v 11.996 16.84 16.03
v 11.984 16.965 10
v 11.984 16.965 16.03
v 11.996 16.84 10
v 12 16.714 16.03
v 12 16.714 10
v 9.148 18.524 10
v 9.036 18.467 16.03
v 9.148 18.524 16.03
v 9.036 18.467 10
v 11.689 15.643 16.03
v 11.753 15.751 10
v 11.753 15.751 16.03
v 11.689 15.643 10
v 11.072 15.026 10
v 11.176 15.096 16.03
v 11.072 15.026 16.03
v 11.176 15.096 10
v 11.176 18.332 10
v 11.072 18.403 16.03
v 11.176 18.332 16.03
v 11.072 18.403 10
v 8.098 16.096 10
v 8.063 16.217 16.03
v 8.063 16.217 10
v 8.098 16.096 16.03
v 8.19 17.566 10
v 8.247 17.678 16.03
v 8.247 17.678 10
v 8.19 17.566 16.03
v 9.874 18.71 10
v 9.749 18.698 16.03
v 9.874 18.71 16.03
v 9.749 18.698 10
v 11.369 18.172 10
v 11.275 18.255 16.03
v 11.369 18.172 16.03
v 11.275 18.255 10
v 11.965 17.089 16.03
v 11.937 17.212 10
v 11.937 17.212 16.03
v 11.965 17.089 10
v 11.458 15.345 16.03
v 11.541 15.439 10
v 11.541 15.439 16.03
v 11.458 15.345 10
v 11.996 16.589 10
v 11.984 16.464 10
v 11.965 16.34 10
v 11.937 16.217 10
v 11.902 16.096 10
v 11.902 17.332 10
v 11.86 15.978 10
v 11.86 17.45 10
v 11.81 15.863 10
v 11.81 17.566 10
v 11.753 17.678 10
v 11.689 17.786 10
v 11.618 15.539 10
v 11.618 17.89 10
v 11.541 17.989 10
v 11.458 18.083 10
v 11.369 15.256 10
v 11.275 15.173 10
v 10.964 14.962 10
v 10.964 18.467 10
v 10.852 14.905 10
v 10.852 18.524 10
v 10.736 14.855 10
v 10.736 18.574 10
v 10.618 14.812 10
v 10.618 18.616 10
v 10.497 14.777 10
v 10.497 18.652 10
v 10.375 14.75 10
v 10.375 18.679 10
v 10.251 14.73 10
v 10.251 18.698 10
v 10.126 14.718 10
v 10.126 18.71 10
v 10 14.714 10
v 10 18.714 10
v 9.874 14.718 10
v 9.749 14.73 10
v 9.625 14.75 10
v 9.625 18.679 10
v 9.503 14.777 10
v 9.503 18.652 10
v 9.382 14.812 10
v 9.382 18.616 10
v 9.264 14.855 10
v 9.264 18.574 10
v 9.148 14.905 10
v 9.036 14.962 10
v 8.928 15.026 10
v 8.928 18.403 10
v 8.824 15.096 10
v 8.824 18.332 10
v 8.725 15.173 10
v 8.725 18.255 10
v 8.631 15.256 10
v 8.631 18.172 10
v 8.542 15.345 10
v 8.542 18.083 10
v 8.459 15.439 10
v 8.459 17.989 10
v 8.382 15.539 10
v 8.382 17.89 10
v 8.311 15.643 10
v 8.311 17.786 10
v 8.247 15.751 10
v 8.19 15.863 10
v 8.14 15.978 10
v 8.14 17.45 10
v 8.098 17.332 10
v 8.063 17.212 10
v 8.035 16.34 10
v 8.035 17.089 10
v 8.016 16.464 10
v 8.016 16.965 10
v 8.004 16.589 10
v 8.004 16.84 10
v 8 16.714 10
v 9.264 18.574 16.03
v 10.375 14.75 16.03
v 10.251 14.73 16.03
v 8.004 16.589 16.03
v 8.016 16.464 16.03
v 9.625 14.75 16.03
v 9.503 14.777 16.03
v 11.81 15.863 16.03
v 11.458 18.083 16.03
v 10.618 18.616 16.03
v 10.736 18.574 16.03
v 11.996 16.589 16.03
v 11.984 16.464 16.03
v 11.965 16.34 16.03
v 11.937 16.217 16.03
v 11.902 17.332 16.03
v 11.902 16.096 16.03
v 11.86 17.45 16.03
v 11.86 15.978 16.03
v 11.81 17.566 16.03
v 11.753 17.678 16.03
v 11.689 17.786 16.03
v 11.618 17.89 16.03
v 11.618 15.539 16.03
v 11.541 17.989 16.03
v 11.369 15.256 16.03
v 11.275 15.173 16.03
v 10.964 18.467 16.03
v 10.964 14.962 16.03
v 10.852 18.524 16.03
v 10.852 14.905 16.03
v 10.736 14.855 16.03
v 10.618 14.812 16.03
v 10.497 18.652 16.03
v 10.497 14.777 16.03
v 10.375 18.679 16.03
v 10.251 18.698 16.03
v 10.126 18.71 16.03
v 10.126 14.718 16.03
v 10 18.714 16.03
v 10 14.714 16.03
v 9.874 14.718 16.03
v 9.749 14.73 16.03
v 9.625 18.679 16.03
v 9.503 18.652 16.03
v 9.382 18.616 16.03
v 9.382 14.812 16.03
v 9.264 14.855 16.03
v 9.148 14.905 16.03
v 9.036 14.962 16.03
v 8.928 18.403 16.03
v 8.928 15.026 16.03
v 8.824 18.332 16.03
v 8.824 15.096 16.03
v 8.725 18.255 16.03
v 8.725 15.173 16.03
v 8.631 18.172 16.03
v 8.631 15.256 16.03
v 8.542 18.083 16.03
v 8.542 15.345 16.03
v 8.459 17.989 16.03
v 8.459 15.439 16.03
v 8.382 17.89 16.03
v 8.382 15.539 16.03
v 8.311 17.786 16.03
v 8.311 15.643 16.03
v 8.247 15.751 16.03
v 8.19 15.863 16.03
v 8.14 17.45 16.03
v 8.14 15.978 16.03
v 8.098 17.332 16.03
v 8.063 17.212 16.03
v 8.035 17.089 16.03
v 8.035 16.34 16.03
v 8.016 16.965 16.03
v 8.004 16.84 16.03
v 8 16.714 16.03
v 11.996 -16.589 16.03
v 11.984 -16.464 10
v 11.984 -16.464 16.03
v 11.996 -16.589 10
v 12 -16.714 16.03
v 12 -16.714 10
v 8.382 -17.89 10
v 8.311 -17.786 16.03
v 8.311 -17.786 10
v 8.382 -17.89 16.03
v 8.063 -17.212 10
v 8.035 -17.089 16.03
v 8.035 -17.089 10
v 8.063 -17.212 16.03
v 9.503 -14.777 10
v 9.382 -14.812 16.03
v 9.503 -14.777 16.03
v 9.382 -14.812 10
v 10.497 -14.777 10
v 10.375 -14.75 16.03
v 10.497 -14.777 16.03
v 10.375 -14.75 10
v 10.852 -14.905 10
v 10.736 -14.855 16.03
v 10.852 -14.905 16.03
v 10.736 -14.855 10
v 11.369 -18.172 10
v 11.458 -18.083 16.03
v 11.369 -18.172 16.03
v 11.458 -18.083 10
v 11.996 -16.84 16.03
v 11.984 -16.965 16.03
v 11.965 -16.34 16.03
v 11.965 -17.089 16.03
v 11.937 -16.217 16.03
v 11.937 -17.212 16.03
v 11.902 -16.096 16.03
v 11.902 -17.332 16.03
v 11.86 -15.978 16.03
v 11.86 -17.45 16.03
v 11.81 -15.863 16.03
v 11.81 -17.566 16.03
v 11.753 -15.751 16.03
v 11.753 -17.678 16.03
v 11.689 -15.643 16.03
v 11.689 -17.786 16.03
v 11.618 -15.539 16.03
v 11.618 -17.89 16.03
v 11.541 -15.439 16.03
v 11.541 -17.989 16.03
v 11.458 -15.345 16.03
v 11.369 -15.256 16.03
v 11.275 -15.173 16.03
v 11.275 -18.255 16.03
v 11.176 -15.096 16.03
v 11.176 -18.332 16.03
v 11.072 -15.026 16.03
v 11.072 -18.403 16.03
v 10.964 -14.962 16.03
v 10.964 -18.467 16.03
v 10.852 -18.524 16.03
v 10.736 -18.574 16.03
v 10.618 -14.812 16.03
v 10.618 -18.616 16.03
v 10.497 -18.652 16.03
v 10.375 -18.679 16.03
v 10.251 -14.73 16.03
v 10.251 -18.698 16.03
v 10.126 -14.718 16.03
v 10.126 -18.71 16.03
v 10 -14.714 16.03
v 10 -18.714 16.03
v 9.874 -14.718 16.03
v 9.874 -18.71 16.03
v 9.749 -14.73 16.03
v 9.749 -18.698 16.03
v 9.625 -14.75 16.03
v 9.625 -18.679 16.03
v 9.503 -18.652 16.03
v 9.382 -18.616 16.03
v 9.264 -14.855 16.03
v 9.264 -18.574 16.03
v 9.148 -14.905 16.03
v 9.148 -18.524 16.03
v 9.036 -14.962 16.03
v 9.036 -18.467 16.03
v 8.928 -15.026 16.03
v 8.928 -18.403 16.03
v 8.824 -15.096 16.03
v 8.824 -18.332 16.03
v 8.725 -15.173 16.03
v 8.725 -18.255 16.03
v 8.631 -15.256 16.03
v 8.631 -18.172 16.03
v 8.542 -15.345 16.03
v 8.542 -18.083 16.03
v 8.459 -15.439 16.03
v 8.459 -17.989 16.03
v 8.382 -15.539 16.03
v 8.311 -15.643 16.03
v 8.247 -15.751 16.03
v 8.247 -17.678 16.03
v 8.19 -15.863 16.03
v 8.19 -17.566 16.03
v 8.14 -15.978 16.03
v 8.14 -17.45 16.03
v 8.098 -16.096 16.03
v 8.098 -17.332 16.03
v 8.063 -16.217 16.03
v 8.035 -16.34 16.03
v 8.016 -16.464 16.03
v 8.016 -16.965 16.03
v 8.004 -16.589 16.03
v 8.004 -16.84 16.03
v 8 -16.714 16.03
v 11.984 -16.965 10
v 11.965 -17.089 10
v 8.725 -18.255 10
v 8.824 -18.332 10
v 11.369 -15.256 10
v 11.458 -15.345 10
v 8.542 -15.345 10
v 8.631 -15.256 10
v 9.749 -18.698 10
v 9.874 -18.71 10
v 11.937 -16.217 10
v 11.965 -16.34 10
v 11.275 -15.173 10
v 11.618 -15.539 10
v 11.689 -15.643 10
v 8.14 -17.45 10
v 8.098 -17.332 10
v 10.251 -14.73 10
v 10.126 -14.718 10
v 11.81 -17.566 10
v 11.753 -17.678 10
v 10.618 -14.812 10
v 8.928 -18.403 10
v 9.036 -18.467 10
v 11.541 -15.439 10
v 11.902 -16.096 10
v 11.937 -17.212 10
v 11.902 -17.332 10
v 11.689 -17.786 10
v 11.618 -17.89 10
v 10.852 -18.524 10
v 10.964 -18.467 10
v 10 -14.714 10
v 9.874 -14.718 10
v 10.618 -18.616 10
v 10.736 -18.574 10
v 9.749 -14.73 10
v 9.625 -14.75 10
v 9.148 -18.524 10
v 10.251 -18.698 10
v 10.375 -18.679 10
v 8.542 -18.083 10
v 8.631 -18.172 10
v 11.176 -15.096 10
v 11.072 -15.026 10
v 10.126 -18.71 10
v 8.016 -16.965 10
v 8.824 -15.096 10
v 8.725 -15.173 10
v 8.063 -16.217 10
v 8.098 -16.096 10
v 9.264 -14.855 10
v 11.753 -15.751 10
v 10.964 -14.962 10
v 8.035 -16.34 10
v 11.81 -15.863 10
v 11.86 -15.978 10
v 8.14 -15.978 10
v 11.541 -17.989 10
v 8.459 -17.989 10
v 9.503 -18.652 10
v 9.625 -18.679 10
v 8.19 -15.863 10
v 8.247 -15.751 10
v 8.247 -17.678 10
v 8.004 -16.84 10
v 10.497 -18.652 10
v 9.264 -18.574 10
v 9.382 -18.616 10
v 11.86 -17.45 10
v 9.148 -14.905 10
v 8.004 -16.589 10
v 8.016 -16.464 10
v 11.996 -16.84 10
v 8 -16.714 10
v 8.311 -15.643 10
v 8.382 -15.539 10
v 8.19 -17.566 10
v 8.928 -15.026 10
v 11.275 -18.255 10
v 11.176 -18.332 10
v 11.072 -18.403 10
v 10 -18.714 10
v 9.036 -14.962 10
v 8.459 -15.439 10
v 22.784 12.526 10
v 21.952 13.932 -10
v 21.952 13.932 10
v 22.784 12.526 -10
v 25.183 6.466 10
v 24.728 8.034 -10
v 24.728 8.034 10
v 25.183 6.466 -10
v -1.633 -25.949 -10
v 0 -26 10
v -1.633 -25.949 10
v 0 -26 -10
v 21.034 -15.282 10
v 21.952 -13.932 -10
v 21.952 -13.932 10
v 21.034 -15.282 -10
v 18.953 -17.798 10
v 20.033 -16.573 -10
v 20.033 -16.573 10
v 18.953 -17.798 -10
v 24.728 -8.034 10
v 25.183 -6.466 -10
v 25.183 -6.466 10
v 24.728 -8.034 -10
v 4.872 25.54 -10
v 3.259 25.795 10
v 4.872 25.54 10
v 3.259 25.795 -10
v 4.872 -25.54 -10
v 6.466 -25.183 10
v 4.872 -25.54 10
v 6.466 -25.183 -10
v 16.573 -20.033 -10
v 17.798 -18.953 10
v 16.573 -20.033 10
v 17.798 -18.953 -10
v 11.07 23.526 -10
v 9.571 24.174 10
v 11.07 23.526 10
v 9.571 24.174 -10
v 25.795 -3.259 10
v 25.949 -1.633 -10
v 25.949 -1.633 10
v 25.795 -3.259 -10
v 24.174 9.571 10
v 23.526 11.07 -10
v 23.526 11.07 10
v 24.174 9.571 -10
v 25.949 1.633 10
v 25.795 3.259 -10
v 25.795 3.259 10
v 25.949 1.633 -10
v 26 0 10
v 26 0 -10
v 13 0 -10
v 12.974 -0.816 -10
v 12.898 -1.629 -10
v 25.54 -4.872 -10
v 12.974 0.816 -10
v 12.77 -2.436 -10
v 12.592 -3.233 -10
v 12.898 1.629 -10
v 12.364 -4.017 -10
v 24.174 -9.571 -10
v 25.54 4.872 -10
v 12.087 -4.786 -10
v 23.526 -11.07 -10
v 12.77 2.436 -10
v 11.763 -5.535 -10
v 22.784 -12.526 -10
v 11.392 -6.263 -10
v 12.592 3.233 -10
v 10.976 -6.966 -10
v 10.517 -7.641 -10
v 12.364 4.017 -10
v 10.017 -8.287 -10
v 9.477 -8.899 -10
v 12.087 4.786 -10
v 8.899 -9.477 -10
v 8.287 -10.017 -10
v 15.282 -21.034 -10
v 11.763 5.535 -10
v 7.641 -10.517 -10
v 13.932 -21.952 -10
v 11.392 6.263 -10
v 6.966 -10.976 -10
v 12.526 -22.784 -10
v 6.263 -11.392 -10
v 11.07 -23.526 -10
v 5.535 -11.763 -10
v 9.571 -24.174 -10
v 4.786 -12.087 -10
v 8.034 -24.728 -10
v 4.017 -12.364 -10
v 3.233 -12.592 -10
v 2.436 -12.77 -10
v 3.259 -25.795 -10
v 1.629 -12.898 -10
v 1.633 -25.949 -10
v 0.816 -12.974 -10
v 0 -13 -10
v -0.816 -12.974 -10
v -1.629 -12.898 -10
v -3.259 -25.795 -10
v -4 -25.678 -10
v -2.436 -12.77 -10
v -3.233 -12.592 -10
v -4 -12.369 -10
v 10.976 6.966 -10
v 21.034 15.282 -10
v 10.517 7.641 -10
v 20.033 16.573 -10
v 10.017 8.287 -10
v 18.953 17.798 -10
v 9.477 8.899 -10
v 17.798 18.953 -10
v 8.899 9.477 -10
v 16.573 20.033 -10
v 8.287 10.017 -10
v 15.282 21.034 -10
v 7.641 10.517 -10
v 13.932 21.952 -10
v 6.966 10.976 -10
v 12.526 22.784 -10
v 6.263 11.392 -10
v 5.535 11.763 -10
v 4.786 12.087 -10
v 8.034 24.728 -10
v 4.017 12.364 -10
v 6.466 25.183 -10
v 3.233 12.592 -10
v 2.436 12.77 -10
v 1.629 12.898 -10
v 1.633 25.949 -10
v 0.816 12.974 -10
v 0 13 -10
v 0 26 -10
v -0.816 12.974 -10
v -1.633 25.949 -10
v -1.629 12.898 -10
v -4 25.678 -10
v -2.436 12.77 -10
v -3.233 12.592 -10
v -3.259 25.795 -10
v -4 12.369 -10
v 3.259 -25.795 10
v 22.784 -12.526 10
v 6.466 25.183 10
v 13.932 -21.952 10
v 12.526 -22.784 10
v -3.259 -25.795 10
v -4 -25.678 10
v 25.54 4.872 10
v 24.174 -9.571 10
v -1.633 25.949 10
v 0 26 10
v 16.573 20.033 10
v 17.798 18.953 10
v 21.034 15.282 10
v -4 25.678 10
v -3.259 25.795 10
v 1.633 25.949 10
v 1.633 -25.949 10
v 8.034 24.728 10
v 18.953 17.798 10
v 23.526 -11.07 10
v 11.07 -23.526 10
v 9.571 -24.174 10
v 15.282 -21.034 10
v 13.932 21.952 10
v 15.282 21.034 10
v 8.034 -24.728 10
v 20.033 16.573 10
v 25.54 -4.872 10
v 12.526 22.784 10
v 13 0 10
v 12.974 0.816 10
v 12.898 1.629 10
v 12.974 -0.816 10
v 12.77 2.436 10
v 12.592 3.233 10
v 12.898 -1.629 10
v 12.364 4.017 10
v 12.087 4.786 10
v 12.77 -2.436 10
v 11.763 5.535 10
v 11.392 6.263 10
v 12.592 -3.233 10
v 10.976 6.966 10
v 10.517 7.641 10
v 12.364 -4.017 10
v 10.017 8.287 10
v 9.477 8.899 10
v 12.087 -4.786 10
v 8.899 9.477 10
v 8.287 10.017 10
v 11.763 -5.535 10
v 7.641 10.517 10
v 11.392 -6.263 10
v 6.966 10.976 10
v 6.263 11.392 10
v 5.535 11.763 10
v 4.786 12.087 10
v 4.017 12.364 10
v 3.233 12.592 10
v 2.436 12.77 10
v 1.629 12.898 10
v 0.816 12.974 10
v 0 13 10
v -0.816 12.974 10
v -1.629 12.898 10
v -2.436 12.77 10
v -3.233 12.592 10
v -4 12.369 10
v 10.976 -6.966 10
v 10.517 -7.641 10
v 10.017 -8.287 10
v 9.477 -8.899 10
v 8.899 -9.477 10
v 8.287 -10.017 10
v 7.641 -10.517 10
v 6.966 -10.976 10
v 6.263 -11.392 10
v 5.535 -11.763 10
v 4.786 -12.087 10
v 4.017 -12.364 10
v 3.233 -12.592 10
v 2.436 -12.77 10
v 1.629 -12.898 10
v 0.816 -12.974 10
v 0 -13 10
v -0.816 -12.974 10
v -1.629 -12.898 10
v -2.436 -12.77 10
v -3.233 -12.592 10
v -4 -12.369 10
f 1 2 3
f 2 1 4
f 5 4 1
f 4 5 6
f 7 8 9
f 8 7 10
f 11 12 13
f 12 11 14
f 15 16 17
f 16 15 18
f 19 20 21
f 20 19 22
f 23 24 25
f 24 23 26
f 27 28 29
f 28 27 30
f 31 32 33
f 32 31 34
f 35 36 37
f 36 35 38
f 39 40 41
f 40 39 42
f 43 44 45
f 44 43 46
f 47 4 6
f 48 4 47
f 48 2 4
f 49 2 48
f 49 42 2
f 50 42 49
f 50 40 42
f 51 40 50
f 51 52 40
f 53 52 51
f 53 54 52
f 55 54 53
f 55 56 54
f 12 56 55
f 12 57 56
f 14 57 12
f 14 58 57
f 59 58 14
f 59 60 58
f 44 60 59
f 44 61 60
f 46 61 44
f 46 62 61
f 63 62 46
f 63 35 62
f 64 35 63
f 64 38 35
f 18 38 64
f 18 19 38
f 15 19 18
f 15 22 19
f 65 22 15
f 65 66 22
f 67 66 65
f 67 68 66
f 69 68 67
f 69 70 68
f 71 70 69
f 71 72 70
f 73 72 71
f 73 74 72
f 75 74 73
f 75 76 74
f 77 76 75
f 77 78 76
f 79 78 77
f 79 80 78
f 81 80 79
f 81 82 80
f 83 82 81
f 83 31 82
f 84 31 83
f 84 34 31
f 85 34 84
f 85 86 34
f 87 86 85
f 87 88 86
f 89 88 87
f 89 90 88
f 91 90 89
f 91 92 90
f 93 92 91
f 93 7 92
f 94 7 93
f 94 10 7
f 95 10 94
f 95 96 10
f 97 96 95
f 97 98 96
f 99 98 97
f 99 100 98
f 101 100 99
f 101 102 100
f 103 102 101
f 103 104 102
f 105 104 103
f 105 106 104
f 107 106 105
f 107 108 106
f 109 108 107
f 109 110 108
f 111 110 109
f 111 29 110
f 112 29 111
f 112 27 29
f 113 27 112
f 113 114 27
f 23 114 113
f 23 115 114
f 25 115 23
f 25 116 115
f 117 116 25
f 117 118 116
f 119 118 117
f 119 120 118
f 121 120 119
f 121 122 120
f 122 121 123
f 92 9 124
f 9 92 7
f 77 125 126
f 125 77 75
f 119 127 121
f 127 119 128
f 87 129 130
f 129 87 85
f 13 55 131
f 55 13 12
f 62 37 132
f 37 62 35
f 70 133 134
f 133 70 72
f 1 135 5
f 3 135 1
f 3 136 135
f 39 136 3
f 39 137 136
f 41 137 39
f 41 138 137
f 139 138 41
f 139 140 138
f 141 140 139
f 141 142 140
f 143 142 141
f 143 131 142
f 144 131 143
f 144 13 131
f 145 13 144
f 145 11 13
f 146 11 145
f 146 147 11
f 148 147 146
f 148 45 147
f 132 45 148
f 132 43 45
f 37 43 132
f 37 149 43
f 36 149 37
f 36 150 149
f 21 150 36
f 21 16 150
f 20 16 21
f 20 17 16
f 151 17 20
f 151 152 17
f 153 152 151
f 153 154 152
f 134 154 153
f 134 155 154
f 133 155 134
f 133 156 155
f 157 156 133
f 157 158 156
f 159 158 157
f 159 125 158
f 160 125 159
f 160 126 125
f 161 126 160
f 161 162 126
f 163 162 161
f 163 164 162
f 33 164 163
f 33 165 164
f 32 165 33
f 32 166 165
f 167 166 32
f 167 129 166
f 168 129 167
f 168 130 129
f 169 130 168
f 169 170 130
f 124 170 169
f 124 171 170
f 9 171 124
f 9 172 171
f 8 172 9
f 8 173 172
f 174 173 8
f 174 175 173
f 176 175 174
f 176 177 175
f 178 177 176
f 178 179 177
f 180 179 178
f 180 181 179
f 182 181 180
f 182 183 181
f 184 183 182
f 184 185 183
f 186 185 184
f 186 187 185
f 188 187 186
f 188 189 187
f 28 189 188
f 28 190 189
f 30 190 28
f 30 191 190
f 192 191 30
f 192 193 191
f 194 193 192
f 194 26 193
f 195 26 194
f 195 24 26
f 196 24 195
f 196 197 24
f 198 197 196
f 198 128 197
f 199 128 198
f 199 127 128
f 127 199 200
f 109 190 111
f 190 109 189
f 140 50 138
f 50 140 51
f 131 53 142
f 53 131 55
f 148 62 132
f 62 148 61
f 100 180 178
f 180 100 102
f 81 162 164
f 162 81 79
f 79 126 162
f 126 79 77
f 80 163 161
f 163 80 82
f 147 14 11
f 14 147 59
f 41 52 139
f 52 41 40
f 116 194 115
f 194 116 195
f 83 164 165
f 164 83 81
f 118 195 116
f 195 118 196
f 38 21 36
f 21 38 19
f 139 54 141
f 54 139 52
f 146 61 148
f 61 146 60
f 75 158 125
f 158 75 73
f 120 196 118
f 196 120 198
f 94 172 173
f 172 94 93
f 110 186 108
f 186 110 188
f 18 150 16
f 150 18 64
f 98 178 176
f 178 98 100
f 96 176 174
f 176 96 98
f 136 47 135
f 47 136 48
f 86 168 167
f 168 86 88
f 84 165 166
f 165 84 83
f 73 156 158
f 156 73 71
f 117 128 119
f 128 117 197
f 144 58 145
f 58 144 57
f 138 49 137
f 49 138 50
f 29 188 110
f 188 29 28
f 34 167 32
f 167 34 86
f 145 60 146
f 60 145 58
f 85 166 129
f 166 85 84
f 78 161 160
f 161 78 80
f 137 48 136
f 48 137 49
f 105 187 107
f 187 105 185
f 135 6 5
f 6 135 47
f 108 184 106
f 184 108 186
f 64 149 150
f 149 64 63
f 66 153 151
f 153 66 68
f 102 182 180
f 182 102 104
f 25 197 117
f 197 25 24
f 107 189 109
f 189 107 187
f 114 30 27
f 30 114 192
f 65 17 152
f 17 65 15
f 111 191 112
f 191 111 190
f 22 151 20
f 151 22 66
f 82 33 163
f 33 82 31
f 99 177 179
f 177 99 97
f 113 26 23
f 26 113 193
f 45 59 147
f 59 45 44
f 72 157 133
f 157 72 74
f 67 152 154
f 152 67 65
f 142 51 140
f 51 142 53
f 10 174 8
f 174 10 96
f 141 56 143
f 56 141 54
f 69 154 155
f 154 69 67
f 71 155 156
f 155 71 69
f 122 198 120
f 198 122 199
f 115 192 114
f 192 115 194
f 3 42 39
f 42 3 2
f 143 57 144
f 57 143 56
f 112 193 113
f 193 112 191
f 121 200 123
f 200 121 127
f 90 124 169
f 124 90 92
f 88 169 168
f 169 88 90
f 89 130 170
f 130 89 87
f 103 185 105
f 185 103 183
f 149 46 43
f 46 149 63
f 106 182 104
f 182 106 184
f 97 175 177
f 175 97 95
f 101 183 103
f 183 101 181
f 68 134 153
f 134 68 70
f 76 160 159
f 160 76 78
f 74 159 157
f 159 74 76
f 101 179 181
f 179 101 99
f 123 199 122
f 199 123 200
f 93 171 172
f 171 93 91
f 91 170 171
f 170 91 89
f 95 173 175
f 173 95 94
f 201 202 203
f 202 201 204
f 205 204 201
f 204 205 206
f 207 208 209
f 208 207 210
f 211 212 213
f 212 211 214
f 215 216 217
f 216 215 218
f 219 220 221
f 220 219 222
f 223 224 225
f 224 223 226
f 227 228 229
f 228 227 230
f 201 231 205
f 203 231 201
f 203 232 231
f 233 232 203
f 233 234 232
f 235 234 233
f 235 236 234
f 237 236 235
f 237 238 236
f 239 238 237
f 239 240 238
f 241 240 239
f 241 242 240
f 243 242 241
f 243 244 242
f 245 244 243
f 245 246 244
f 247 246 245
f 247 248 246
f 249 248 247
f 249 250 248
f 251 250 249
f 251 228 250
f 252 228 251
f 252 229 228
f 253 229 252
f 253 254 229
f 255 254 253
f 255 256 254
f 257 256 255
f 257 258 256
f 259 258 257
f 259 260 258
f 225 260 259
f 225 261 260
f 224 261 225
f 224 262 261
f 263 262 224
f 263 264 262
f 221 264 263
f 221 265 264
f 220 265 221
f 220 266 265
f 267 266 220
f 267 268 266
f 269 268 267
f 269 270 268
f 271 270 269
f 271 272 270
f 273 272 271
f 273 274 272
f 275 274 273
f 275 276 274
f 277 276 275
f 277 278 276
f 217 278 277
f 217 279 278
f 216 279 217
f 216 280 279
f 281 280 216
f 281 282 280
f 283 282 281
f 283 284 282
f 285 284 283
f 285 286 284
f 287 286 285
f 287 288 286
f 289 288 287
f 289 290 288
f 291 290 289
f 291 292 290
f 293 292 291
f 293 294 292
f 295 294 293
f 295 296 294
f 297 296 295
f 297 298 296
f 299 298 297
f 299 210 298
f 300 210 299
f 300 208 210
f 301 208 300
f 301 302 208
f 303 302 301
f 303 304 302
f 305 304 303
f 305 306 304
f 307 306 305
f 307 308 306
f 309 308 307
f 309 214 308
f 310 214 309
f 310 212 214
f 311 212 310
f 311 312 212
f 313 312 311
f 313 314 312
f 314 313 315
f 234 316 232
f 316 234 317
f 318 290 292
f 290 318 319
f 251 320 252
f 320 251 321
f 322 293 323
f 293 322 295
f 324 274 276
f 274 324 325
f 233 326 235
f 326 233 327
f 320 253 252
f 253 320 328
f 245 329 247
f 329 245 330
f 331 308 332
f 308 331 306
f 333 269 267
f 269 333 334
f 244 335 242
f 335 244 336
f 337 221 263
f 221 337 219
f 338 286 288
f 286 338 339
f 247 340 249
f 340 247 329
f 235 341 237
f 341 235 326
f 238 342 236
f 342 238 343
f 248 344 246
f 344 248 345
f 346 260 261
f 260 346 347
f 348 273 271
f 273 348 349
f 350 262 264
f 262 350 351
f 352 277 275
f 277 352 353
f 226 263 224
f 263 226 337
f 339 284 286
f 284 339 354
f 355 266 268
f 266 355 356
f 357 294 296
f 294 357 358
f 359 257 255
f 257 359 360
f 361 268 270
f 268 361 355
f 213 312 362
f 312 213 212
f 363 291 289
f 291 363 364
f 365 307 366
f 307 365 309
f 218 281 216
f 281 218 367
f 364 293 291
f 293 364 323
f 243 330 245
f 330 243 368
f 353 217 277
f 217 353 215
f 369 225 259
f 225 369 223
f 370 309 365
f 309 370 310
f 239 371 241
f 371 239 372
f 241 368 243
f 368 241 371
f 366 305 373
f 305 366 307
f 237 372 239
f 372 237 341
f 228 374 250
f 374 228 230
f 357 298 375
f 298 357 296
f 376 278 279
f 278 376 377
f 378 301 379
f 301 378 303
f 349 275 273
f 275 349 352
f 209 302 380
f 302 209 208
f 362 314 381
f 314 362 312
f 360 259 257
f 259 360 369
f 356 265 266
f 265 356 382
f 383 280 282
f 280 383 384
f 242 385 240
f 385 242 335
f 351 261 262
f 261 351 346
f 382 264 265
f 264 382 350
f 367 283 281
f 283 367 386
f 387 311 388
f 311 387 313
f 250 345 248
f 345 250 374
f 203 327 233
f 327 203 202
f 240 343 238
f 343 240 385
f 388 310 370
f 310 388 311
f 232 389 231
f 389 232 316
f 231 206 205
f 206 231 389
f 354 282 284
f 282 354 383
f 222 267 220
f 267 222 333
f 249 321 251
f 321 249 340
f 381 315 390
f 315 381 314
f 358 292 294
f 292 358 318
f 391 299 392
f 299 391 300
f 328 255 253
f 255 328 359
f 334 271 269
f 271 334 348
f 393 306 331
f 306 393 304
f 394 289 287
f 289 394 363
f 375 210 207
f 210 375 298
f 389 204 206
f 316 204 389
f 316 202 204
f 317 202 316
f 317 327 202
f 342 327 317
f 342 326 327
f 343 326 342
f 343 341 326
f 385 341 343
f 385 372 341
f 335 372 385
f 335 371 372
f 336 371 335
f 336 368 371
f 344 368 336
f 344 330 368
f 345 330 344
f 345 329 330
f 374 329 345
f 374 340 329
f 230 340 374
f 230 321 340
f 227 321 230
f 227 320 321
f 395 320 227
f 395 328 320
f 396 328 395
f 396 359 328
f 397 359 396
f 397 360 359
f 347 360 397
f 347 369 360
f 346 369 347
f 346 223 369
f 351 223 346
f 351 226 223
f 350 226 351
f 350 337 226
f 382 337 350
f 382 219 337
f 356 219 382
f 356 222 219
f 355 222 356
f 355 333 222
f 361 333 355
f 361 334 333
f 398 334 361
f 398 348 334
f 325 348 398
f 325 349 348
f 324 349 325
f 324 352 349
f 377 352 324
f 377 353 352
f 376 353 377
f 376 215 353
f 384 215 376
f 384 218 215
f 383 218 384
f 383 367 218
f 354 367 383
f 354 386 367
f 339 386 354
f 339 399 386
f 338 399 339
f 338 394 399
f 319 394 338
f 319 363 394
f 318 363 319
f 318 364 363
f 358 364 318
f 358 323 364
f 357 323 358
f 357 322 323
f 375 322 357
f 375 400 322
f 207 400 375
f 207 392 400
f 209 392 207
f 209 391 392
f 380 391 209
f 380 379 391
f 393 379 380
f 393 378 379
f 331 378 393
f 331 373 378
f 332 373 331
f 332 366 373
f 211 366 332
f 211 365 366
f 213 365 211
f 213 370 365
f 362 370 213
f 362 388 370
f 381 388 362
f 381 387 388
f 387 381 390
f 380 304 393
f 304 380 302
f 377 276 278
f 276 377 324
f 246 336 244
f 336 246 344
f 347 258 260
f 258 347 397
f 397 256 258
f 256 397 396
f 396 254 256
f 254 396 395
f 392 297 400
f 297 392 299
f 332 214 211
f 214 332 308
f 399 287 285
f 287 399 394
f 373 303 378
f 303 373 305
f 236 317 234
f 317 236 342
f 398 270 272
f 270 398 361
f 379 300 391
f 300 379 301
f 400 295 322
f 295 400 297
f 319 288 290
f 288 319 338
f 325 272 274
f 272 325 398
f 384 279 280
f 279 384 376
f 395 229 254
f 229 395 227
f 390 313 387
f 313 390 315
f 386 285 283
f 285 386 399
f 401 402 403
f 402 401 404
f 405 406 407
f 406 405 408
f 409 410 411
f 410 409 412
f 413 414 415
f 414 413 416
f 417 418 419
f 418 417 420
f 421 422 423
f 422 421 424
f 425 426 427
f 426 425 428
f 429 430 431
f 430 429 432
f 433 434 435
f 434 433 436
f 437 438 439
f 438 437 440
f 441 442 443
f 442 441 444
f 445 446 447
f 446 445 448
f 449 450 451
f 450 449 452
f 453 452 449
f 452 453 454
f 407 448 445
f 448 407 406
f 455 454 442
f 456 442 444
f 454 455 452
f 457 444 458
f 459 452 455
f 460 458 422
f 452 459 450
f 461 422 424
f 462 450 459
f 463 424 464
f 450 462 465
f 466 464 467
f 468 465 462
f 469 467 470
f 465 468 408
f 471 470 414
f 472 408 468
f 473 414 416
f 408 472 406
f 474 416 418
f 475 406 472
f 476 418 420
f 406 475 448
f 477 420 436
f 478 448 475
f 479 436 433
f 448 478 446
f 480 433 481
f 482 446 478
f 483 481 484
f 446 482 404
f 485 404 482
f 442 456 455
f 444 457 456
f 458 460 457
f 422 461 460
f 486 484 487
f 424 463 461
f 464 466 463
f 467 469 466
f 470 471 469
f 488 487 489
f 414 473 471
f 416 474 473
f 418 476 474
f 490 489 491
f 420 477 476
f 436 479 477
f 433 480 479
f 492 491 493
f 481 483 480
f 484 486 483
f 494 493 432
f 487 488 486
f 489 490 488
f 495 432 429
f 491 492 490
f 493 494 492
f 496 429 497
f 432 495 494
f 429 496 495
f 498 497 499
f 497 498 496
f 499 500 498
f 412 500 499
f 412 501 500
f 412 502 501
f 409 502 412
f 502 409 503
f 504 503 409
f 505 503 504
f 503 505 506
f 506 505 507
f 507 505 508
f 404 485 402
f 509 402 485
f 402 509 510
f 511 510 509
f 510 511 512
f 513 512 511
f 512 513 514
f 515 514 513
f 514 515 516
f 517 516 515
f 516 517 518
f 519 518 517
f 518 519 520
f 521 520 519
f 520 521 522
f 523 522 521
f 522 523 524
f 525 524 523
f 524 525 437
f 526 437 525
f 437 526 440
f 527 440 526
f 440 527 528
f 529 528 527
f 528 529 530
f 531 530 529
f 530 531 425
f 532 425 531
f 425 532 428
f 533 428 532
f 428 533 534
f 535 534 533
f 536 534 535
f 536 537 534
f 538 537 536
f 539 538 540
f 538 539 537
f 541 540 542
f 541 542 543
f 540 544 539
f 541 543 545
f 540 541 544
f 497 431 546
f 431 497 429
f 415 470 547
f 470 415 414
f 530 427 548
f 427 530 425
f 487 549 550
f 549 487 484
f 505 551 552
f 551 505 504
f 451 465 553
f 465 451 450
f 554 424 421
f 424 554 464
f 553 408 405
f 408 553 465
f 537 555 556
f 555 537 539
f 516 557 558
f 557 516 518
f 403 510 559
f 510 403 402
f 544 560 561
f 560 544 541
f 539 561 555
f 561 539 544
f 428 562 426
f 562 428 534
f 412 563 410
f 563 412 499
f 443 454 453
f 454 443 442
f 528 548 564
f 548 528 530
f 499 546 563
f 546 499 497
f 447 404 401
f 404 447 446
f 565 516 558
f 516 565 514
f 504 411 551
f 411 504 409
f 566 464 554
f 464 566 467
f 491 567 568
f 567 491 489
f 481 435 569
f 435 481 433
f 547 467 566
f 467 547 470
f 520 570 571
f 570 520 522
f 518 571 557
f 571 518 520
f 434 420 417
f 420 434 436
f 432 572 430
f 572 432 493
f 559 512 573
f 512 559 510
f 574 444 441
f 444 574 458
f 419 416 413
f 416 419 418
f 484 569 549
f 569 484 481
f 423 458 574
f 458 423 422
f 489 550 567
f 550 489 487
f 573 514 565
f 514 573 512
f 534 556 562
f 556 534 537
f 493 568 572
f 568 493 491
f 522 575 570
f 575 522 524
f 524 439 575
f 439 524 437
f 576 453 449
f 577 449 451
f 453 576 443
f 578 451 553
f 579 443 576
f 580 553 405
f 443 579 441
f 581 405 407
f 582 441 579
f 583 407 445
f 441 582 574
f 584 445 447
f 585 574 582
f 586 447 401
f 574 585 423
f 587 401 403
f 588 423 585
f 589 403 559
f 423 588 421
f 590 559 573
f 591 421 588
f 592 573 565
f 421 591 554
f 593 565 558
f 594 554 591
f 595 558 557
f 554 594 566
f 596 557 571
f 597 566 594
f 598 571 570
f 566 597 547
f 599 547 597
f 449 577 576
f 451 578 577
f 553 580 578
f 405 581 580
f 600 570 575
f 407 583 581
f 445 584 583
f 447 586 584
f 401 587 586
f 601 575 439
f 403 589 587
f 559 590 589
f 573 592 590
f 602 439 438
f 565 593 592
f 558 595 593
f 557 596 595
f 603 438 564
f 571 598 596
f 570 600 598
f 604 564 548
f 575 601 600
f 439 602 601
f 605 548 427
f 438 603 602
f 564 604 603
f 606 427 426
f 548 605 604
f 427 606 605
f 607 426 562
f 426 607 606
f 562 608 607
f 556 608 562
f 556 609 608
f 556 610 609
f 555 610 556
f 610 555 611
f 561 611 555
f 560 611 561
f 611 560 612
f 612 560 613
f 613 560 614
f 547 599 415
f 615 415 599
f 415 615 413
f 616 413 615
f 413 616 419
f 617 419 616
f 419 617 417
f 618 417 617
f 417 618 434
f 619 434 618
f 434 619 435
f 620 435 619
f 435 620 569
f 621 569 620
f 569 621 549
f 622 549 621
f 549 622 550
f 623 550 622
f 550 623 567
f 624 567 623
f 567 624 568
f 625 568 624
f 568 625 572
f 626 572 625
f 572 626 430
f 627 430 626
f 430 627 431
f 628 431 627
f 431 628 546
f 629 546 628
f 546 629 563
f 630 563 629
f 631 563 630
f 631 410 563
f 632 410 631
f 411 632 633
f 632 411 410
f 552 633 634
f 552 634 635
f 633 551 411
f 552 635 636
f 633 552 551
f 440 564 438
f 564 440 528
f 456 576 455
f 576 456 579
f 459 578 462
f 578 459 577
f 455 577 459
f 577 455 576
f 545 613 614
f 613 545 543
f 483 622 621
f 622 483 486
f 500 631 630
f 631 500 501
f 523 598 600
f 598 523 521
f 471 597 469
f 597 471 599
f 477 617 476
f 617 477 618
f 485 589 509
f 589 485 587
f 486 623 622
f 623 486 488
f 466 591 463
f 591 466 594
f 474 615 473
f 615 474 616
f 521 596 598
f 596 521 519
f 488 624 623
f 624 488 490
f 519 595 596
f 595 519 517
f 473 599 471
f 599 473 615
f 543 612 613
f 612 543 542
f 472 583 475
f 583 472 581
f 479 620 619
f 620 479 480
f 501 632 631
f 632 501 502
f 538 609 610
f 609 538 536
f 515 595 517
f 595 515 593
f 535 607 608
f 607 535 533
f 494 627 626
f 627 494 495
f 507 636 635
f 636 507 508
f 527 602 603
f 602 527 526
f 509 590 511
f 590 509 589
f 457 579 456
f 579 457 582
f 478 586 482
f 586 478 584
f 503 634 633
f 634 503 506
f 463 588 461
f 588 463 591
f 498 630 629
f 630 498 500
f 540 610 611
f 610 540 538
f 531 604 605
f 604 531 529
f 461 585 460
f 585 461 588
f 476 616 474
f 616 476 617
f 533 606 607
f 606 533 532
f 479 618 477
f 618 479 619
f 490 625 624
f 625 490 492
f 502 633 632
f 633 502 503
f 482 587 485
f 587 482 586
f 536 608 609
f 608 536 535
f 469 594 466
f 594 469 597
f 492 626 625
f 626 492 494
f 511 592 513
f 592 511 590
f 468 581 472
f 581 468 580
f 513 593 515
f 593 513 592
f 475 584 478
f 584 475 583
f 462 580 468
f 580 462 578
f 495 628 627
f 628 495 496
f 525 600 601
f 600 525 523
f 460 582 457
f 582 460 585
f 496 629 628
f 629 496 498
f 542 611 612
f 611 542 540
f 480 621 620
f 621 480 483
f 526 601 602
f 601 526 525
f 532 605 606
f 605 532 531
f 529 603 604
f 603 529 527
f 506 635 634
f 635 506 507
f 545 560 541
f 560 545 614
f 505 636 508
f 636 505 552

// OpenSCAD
$fn = 100;
difference()
{
  union()
  {
    cylinder(h = 20, r = 26, center = true);
    translate(v = [0, 0, 13.015])
    {
      translate(v = [10, 0, 0])
      {
        union()
        {
          translate(v = [0, 16.714285714285715, 0])
          {
            cylinder(h = 6.03, r = 2, center = true);
          }
          translate(v = [0, -16.714285714285715, 0])
          {
            cylinder(h = 6.03, r = 2, center = true);
          }
        }
      }
    }
  }
  cylinder(h = 50, r = 13, center = true);
  translate(v = [-17, 0, 0])
  {
    cube(size = [26, 70, 20.03], center = true);
  }
}
